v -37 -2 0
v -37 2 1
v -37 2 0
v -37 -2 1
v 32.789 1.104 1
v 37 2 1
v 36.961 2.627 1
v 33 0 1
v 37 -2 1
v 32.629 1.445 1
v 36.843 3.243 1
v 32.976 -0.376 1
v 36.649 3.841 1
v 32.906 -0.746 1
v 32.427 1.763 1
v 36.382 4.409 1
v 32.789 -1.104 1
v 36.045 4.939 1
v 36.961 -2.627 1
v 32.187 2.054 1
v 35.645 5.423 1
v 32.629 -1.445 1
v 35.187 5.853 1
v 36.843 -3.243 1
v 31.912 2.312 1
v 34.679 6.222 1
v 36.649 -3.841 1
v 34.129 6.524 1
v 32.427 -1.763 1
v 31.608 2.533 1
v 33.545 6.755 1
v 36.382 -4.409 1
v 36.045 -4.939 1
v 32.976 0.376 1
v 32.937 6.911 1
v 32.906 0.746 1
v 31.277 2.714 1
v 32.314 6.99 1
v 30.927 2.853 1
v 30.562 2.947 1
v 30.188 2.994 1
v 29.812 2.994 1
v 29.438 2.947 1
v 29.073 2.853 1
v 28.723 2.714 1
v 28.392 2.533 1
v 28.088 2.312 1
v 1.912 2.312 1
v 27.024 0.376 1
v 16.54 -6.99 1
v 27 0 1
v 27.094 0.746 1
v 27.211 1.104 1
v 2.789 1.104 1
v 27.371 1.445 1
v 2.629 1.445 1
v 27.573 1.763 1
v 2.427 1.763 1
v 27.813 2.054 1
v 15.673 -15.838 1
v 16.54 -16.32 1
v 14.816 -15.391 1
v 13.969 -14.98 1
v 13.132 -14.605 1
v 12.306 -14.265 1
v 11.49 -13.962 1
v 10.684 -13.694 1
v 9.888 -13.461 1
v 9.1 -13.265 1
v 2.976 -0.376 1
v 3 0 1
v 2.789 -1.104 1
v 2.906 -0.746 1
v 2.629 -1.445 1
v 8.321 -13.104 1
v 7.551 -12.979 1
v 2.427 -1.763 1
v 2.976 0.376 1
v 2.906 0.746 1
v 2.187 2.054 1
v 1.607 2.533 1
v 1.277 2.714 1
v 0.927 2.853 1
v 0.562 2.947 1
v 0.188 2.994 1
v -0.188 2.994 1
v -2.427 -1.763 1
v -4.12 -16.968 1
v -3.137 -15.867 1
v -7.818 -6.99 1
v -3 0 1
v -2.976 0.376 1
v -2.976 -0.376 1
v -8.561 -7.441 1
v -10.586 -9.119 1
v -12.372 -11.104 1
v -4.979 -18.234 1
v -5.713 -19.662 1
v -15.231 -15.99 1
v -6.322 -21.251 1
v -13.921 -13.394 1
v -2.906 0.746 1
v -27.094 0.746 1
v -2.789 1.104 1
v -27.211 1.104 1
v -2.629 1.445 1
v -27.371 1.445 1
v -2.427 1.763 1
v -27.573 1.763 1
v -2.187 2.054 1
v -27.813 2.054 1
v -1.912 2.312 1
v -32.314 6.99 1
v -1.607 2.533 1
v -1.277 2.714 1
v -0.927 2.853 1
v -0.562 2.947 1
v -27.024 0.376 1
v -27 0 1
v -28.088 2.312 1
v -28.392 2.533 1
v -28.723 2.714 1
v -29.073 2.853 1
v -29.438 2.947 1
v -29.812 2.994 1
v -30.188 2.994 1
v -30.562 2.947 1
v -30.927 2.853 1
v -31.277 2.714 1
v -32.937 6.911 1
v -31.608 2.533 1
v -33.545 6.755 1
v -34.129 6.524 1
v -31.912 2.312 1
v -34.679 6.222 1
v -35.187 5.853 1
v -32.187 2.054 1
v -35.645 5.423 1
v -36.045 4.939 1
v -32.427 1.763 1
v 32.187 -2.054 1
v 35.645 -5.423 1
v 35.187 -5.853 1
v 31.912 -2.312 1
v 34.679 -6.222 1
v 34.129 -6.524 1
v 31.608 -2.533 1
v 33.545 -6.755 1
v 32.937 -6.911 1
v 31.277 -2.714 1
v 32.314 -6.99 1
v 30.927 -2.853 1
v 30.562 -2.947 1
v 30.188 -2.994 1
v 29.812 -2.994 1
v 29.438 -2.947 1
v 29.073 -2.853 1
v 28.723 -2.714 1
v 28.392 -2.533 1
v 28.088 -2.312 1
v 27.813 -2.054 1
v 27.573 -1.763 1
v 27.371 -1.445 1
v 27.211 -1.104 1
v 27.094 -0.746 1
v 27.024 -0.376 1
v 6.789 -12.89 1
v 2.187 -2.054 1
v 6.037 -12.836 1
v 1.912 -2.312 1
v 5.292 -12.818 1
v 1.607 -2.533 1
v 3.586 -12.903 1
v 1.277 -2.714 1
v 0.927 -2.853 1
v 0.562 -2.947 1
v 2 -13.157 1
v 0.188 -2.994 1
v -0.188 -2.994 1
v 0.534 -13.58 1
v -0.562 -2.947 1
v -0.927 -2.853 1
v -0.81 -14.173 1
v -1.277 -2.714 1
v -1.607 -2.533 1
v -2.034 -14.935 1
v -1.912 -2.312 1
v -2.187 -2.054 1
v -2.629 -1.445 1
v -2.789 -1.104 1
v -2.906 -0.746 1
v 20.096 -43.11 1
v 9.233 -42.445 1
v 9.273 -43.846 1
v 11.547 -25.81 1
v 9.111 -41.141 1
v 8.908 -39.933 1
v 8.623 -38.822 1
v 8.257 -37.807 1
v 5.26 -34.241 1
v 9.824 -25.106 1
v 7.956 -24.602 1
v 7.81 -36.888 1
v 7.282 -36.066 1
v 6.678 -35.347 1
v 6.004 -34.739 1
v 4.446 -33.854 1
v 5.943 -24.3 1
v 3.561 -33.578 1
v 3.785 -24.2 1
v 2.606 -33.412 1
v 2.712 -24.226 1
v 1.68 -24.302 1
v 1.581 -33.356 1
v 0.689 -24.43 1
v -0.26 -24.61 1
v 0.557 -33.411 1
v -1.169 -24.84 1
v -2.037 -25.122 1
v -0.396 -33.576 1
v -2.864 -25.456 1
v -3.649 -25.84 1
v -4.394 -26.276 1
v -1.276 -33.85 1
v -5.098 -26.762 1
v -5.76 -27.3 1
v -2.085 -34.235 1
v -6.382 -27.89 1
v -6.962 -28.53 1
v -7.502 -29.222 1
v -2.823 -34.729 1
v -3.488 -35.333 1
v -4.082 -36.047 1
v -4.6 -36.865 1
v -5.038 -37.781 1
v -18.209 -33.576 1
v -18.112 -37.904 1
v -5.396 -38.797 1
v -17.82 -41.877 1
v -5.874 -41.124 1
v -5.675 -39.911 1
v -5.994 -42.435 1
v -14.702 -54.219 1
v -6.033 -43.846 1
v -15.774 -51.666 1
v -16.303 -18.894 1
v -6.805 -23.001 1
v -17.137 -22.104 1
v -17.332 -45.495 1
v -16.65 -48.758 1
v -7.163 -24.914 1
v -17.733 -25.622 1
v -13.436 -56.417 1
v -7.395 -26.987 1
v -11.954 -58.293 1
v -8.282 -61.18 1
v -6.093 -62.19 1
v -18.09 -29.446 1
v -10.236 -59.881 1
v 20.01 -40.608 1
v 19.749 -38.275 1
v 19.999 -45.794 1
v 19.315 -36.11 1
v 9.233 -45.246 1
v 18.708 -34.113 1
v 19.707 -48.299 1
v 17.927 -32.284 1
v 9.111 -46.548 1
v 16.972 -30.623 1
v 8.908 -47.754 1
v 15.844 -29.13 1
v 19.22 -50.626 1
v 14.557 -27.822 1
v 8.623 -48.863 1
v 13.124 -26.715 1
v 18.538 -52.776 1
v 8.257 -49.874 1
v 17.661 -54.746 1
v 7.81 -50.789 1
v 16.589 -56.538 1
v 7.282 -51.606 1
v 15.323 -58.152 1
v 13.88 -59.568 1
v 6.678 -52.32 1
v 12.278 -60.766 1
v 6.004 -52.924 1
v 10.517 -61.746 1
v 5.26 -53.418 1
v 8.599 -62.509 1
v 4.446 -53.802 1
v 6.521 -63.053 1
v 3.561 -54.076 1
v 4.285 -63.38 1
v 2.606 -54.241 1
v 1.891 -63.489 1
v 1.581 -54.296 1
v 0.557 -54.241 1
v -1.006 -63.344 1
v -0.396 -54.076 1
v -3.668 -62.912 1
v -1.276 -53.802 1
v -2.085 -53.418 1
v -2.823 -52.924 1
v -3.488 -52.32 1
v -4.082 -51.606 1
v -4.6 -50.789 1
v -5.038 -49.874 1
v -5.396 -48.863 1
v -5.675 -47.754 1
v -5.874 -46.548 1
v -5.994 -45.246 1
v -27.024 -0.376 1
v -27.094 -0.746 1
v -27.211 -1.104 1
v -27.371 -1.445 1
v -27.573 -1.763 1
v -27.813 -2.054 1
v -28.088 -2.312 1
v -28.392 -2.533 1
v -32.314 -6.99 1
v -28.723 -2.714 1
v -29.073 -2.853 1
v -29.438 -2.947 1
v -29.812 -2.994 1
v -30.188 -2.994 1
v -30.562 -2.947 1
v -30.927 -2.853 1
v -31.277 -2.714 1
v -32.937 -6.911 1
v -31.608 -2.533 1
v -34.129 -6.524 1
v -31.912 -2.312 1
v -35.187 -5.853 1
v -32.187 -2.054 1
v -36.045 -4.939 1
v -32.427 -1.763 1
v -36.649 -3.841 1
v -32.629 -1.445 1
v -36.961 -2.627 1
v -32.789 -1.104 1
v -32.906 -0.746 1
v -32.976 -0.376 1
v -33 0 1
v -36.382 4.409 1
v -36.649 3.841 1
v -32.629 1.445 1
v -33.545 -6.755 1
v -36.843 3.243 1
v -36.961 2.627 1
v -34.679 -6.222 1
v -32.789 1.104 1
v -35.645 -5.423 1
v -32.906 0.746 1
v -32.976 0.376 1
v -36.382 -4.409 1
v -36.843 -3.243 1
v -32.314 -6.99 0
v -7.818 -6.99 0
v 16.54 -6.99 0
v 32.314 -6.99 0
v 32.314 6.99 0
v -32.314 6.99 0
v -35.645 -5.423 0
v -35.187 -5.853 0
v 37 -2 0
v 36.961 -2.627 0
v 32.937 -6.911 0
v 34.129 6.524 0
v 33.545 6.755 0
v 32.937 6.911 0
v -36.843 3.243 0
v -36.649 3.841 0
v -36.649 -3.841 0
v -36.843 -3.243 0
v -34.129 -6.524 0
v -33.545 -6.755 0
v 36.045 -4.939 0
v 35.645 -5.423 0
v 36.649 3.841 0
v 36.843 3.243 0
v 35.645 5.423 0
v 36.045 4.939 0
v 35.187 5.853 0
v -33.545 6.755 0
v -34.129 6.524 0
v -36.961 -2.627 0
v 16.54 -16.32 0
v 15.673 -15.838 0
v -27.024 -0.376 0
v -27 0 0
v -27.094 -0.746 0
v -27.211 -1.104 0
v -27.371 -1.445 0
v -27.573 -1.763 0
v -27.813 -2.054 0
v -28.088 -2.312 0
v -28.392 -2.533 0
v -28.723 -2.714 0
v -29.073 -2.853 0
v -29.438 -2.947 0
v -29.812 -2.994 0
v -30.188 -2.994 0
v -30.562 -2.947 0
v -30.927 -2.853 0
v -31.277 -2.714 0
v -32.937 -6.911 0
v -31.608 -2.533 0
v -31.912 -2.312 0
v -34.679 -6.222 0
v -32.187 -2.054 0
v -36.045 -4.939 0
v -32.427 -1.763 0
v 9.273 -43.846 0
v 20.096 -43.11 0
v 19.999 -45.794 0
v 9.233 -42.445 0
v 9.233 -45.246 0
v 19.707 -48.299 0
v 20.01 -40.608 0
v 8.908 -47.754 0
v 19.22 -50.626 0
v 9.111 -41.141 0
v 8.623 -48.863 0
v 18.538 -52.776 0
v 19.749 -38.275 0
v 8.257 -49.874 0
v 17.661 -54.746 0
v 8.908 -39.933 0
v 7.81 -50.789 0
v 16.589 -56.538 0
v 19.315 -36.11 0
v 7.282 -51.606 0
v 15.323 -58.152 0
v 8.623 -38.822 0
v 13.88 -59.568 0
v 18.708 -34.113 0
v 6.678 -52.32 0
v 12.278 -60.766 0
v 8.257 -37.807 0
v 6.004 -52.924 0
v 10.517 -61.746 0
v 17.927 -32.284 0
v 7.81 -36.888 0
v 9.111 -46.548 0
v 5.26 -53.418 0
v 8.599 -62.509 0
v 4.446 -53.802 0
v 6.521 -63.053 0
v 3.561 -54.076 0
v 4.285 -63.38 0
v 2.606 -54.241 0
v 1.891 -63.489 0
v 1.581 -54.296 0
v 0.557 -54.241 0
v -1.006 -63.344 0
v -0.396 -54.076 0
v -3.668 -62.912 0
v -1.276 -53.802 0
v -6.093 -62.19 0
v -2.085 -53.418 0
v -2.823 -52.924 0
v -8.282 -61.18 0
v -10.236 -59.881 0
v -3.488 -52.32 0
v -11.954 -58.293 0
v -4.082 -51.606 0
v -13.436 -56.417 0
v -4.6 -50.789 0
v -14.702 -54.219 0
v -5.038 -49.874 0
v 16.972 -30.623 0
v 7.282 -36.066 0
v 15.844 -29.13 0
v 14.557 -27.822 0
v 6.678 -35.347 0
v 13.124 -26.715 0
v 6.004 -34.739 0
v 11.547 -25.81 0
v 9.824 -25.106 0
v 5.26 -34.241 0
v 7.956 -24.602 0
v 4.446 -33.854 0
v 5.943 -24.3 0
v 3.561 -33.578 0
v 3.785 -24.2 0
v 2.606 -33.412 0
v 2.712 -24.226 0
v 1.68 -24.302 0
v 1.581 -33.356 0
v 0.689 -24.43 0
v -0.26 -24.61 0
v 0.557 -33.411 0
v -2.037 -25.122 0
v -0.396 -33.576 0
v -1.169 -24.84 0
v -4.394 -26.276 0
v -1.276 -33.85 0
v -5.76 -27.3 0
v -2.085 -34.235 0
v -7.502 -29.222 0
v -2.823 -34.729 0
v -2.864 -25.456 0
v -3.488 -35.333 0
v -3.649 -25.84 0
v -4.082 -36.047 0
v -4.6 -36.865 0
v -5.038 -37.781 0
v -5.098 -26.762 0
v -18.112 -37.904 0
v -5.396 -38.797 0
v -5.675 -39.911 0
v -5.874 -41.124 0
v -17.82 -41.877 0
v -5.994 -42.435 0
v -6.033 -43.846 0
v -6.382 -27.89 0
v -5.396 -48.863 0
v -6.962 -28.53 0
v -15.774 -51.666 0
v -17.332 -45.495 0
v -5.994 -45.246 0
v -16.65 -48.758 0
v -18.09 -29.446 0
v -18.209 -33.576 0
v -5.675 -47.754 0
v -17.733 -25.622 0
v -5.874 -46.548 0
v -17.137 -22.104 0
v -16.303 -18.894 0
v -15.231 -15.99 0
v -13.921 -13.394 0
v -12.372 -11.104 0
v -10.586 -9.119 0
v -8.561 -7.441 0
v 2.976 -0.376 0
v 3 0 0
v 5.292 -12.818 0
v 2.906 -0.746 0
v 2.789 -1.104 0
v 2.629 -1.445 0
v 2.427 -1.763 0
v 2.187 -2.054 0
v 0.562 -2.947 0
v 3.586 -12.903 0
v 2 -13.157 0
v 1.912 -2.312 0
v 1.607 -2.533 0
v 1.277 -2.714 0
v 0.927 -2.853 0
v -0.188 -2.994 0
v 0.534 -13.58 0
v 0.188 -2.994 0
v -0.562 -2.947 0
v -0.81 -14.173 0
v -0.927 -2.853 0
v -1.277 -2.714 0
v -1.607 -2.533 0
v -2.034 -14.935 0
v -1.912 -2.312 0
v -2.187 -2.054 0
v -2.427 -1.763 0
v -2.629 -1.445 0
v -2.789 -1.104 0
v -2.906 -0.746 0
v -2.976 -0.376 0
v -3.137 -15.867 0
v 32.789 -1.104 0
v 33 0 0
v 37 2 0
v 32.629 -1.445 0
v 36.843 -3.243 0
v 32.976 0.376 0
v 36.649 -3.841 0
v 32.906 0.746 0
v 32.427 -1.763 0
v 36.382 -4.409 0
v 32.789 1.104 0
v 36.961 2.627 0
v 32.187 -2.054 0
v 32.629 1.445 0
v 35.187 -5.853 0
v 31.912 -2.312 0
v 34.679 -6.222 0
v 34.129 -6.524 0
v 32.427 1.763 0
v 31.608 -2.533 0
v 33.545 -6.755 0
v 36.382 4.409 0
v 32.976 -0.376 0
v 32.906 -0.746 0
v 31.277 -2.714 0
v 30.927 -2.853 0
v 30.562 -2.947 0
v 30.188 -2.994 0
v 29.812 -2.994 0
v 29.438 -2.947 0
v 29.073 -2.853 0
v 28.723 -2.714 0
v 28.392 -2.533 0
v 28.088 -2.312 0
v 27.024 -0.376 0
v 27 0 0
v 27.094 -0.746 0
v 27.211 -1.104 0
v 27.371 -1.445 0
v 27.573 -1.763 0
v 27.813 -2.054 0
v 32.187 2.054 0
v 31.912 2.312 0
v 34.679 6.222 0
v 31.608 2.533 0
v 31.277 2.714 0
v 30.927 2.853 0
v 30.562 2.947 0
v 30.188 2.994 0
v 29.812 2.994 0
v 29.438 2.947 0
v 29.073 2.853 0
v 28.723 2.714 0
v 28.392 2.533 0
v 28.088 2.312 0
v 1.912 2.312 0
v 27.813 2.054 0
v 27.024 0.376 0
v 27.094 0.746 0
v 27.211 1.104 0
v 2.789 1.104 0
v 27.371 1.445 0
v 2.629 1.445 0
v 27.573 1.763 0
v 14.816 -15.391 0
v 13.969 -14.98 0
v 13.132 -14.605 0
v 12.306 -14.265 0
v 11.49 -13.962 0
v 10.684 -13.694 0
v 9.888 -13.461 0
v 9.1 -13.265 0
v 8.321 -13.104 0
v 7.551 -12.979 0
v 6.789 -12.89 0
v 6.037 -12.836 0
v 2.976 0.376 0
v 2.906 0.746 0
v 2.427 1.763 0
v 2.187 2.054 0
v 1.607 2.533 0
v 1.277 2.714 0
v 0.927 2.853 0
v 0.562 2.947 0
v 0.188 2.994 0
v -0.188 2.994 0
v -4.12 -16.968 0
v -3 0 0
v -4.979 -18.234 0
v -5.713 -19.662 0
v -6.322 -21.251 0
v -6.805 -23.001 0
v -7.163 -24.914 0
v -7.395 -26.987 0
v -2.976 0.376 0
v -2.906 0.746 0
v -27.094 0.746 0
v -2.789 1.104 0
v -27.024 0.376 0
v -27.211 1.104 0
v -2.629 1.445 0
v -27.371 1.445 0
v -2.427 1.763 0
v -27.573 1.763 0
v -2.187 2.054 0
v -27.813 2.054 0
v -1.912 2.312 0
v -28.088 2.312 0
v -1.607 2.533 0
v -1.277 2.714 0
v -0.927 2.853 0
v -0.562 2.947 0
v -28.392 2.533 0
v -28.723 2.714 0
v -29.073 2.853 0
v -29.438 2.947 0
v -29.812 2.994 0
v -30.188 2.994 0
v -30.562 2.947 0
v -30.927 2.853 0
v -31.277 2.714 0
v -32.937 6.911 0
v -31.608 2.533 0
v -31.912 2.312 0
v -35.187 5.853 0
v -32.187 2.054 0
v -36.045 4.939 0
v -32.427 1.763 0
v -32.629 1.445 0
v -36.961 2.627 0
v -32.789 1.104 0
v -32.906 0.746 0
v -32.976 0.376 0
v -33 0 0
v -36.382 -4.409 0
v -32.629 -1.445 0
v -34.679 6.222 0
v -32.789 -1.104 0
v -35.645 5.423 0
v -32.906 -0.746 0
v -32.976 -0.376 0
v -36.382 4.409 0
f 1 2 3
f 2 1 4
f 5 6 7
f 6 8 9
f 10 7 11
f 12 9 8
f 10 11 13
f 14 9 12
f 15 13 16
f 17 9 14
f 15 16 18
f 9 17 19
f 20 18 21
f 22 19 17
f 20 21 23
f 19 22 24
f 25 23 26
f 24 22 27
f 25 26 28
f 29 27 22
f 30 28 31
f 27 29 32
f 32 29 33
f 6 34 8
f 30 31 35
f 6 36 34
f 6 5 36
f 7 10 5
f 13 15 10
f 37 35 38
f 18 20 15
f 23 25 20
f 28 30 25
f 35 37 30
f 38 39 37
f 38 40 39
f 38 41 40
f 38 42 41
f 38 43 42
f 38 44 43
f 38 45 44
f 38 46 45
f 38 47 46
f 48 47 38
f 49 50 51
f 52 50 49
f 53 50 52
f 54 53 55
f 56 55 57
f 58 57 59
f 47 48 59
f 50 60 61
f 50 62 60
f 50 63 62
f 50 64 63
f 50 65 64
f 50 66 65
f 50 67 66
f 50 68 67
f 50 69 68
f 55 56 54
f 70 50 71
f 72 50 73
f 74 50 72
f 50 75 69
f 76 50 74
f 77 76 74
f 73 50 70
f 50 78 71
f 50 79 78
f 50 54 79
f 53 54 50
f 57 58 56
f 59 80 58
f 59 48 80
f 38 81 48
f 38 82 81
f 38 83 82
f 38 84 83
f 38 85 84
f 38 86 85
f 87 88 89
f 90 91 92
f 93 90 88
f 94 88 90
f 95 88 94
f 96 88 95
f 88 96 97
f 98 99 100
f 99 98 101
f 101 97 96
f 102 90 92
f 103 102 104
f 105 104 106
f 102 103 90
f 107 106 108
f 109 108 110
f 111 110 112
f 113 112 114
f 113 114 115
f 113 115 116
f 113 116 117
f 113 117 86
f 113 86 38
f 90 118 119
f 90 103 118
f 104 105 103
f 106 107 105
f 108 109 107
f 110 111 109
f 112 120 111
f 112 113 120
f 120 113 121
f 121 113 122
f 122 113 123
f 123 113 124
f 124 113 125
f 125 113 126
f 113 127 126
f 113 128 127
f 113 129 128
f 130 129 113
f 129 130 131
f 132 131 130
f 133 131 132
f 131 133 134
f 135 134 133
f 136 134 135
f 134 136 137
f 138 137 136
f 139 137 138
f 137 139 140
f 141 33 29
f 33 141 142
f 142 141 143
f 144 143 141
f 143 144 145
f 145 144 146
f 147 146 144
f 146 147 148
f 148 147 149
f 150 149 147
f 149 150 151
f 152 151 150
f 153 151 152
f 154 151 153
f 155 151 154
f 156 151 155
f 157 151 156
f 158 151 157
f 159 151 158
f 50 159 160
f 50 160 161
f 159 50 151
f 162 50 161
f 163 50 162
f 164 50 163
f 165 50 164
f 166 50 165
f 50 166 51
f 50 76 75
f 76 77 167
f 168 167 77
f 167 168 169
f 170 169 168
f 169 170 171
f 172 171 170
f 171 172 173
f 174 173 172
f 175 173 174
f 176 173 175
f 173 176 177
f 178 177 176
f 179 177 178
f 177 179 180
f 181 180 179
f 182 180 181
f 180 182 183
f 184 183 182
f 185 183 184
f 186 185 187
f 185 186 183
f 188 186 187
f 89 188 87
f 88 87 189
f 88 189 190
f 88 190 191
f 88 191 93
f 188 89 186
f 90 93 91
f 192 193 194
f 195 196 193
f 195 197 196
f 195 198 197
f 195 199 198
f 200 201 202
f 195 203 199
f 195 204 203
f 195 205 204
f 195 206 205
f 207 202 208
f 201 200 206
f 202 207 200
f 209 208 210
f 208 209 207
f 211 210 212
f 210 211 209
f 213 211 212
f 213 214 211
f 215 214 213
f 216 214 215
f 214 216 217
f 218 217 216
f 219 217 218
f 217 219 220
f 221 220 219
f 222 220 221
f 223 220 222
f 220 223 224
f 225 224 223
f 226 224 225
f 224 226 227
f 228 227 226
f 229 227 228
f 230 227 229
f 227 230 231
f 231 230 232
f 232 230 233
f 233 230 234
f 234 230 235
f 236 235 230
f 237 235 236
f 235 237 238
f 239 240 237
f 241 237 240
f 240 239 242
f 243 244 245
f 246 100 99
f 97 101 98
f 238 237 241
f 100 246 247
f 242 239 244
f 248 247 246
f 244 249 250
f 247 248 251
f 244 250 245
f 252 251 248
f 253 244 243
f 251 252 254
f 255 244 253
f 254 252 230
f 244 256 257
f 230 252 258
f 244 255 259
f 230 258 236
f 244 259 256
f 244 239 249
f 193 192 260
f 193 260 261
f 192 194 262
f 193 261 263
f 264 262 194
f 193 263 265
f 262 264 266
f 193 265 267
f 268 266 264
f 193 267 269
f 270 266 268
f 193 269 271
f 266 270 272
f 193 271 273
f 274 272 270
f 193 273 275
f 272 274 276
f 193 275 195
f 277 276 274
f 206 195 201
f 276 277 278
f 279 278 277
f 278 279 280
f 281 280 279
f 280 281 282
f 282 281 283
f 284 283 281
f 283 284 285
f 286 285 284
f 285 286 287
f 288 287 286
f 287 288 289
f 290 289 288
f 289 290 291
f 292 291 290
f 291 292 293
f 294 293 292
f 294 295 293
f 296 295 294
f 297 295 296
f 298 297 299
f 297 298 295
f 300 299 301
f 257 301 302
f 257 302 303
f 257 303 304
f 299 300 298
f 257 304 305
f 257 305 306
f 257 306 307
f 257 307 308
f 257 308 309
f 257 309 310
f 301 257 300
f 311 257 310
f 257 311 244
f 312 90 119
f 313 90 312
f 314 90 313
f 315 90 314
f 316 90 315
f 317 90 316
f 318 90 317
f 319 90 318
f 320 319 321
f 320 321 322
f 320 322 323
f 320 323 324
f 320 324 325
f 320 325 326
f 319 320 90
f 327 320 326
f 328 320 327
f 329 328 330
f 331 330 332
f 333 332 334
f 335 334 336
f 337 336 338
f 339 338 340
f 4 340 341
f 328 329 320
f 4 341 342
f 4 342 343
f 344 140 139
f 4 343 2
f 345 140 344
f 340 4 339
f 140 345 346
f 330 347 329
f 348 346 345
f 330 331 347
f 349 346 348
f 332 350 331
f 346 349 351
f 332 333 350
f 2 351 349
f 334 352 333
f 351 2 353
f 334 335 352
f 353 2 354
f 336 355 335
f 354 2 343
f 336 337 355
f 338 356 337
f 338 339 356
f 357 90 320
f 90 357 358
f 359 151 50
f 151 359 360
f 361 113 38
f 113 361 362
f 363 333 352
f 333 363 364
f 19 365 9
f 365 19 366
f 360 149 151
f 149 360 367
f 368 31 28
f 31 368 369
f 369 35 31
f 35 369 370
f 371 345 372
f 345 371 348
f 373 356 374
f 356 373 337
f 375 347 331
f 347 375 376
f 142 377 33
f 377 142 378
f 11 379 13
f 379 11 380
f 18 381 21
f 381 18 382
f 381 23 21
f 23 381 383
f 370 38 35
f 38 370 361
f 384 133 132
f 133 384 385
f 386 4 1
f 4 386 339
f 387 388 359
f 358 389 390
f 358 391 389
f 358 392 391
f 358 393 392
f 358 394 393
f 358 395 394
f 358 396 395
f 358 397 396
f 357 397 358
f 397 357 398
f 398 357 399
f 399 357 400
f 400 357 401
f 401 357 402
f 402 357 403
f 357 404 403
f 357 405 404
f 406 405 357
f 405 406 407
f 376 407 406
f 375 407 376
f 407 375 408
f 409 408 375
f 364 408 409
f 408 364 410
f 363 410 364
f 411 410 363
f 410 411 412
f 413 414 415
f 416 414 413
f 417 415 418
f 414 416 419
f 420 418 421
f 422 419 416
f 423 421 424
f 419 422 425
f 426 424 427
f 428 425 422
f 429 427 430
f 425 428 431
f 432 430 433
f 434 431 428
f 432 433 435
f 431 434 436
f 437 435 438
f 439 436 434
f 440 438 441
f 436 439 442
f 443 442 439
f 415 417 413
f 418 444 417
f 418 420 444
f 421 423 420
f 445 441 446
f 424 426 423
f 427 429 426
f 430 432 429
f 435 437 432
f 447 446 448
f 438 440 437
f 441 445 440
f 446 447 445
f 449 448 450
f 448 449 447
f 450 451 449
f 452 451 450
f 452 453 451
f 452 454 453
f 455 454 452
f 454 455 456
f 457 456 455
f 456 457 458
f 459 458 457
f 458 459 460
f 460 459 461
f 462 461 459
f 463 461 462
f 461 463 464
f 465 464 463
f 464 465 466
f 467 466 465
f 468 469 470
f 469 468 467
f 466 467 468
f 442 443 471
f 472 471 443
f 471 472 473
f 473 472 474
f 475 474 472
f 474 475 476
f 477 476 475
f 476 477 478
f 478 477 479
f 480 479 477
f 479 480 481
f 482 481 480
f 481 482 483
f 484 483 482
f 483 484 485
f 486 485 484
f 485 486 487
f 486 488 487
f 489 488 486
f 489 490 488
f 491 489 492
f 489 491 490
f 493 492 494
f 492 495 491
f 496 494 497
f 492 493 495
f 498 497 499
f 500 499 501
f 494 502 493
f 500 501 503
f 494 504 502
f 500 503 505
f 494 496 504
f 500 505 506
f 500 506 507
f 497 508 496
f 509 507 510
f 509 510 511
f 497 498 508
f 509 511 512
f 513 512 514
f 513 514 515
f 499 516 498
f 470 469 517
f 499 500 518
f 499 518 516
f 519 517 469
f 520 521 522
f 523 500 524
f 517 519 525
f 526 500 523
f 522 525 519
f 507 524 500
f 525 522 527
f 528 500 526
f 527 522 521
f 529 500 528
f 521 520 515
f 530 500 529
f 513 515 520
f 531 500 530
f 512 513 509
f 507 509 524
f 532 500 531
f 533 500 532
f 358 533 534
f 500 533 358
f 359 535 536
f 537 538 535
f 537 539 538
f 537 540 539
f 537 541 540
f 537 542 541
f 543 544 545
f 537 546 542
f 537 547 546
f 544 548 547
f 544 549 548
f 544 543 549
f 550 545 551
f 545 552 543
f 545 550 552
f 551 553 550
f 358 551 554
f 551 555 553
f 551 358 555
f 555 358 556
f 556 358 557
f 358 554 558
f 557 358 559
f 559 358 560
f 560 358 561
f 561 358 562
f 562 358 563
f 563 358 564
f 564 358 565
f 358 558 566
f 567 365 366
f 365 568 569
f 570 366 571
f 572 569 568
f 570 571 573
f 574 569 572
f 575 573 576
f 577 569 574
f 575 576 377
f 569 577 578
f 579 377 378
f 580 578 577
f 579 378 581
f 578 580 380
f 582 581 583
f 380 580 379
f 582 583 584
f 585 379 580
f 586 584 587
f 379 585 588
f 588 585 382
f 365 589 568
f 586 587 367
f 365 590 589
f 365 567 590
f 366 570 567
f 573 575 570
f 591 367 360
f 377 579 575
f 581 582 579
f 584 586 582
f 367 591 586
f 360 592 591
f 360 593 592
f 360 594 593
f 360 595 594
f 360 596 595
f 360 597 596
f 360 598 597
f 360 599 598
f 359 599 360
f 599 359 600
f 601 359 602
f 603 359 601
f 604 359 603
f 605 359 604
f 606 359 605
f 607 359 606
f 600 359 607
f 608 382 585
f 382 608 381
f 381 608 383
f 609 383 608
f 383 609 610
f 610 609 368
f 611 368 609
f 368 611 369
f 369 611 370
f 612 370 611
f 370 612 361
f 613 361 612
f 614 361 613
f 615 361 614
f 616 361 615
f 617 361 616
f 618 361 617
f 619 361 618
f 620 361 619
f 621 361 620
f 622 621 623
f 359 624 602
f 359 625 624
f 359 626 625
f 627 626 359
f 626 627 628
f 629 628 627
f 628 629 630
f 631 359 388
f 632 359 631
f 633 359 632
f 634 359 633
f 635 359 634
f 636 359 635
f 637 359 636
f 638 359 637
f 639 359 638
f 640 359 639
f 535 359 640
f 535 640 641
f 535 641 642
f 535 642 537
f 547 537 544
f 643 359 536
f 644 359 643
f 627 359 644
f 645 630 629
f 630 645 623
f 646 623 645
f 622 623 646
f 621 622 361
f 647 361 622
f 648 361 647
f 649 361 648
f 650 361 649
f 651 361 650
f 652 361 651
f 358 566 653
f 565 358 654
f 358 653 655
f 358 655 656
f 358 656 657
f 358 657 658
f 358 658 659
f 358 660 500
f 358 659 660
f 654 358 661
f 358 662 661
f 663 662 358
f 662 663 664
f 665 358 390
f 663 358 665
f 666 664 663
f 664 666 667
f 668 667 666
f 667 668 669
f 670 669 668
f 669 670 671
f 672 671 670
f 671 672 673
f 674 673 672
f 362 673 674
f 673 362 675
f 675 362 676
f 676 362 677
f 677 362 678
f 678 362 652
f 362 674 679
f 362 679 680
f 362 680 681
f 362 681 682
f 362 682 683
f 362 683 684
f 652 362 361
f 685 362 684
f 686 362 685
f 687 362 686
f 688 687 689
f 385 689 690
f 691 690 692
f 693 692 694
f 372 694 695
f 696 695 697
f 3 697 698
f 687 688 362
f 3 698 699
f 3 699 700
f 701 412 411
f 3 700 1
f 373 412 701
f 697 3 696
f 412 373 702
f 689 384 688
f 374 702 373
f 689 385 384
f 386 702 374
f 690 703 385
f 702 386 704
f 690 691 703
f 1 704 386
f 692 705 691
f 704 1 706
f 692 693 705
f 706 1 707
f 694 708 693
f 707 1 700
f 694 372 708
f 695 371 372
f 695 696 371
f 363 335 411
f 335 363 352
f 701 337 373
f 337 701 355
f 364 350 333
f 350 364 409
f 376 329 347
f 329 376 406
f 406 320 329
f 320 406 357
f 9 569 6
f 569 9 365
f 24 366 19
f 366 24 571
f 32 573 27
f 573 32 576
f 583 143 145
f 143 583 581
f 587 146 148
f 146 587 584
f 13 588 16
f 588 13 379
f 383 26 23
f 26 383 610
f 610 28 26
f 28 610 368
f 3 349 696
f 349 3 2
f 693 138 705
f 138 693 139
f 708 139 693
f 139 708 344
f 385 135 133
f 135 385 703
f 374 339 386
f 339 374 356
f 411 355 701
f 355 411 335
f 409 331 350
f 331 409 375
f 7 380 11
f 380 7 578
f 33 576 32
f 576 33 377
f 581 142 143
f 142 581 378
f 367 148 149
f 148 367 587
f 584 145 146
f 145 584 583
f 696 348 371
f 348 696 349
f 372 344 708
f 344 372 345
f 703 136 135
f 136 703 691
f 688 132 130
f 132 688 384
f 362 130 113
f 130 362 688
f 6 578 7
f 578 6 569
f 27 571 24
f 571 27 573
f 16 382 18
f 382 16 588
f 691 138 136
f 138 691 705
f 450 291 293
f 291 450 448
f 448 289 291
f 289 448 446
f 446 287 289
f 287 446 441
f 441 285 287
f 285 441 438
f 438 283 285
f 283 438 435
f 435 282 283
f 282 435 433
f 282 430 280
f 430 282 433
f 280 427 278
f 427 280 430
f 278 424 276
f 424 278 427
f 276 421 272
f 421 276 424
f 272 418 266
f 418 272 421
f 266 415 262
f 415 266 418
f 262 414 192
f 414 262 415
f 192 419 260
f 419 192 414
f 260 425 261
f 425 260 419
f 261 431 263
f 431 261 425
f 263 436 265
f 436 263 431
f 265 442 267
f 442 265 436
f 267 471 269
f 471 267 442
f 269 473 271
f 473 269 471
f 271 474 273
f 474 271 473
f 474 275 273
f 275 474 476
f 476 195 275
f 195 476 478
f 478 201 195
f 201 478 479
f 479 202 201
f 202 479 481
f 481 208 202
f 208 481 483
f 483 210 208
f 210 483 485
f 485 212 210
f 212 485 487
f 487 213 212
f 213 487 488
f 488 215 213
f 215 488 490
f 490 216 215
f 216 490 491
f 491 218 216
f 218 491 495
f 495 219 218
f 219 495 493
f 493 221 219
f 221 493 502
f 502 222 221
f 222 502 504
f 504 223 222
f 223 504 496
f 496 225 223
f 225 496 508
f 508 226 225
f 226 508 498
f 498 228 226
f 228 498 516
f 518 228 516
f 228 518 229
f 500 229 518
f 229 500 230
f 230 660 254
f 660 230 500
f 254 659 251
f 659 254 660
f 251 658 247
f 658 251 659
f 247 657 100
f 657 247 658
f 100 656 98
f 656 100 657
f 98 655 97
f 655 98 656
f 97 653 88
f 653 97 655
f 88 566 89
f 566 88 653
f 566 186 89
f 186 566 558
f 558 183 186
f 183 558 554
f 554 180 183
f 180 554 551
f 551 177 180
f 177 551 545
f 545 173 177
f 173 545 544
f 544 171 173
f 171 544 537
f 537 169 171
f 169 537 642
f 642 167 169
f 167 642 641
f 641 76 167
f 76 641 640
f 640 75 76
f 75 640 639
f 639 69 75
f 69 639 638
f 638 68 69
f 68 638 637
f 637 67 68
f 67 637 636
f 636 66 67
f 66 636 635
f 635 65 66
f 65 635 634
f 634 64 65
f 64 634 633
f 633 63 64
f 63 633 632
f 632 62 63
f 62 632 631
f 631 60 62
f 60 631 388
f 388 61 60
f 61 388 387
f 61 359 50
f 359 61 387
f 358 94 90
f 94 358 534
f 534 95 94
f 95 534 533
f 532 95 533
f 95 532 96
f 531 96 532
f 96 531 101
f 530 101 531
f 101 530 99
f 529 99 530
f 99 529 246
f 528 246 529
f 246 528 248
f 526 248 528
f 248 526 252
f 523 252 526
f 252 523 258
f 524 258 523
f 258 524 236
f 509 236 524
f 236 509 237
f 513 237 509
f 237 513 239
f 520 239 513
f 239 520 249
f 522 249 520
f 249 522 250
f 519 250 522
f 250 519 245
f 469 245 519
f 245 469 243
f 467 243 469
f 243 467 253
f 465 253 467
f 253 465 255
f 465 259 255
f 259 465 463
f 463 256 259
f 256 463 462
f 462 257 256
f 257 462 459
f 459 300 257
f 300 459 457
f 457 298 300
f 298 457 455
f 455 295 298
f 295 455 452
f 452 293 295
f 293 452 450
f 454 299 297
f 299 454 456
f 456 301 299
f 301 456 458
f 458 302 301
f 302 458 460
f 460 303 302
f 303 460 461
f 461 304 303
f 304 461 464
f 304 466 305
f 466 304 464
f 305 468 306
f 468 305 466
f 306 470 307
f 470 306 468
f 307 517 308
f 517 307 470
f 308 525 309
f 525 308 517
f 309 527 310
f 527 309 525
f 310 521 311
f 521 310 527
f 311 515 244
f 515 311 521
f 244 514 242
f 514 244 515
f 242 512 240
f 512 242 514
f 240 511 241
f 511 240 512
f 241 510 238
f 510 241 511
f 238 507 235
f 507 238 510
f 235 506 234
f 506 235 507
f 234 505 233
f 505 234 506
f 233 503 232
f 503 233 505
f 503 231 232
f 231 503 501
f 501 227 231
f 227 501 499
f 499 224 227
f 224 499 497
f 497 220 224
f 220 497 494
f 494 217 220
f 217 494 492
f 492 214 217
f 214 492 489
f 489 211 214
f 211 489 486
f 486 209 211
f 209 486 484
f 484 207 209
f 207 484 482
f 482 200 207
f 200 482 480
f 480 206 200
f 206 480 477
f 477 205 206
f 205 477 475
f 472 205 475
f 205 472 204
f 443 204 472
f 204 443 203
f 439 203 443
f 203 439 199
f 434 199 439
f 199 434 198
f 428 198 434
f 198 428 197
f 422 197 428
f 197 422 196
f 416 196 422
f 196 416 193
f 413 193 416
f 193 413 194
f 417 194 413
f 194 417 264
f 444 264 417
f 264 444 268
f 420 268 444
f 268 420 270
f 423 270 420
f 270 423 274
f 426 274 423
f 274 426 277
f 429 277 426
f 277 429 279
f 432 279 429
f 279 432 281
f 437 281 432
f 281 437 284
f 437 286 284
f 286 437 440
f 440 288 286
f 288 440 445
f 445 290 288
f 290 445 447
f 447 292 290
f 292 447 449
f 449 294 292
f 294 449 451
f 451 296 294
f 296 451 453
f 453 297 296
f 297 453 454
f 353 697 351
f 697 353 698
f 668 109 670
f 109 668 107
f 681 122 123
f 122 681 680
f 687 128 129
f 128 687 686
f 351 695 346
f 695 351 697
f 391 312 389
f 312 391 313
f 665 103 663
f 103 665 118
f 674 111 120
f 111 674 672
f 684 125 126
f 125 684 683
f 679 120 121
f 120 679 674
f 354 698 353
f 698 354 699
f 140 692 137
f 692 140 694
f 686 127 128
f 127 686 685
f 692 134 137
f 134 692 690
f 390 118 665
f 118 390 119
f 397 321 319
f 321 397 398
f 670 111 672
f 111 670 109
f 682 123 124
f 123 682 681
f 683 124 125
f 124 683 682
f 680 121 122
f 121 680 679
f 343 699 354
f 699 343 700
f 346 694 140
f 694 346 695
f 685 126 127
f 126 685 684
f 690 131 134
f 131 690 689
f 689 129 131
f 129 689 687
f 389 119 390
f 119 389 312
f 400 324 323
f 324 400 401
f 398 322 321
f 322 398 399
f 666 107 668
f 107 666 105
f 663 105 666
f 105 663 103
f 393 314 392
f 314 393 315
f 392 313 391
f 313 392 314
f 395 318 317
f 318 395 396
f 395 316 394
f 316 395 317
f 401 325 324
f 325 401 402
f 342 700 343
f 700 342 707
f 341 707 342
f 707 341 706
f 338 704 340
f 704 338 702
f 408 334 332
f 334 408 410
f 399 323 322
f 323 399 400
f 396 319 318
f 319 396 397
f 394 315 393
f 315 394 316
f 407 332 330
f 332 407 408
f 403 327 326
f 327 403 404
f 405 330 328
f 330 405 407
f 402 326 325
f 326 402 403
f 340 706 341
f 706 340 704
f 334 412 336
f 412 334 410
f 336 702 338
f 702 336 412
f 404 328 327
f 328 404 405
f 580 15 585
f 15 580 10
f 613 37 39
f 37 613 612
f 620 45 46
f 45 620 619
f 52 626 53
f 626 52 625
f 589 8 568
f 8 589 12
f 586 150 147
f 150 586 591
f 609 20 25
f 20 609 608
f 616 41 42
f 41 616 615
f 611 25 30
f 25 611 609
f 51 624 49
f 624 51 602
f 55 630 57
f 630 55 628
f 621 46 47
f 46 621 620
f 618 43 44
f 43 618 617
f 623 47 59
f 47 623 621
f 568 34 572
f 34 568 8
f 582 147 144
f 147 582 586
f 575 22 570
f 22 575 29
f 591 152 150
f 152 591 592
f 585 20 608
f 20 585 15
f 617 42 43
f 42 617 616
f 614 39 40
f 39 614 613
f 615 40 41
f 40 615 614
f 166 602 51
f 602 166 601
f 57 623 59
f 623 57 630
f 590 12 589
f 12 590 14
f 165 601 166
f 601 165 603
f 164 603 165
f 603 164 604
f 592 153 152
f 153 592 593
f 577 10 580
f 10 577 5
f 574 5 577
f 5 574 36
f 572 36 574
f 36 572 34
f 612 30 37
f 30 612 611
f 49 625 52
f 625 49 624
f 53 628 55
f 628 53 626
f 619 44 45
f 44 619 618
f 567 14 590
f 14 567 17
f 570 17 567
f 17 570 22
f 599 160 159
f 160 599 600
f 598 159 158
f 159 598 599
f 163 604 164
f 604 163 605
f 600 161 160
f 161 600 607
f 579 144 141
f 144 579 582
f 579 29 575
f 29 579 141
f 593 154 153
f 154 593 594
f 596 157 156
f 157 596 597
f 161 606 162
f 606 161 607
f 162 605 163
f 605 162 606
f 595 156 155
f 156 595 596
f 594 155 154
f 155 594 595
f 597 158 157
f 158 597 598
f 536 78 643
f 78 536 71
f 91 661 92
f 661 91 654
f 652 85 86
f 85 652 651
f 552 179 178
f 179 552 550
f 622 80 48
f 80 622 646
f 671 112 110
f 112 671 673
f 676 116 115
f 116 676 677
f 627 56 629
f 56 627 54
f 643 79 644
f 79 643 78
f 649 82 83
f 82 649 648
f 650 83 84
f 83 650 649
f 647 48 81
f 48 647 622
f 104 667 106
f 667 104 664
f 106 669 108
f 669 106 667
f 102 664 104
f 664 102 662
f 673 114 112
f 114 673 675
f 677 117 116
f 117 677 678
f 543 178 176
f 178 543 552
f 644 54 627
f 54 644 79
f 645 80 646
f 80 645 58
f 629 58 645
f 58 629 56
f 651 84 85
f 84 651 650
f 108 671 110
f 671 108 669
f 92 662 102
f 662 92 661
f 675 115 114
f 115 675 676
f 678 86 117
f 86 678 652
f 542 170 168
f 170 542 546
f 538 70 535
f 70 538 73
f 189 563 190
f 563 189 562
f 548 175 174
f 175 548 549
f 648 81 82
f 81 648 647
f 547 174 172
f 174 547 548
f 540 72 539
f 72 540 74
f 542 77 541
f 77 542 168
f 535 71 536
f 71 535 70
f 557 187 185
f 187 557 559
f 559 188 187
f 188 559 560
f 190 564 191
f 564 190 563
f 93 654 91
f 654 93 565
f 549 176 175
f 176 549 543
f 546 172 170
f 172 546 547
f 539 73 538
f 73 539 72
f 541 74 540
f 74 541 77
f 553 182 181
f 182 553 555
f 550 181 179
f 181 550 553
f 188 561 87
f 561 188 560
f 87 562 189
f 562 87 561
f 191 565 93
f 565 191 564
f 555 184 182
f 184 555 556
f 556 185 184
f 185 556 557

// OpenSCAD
$fn = 50;


difference() {
	union() {
		translate(v = [0, 0, 0]) {
			rotate(a = [0, 0, 0]) {
				hull() {
					translate(v = [-32.0000000000, 2.0000000000, 0]) {
						rotate(a = [0, 0, 0]) {
							translate(v = [0, 0, 0]) {
								rotate(a = [0, 0, 0]) {
									cylinder(h = 1, r = 5);
								}
							}
						}
					}
					translate(v = [32.0000000000, 2.0000000000, 0]) {
						rotate(a = [0, 0, 0]) {
							translate(v = [0, 0, 0]) {
								rotate(a = [0, 0, 0]) {
									cylinder(h = 1, r = 5);
								}
							}
						}
					}
					translate(v = [-32.0000000000, -2.0000000000, 0]) {
						rotate(a = [0, 0, 0]) {
							translate(v = [0, 0, 0]) {
								rotate(a = [0, 0, 0]) {
									cylinder(h = 1, r = 5);
								}
							}
						}
					}
					translate(v = [32.0000000000, -2.0000000000, 0]) {
						rotate(a = [0, 0, 0]) {
							translate(v = [0, 0, 0]) {
								rotate(a = [0, 0, 0]) {
									cylinder(h = 1, r = 5);
								}
							}
						}
					}
				}
			}
		}
		translate(v = [0, -5, 0]) {
			rotate(a = [0, 0, 0]) {
				linear_extrude(height = 1) {
					text(font = "DejaVu Sans Mono:style=Bold", halign = "center", size = 57.0000000000, text = "6", valign = "top");
				}
			}
		}
	}
	union() {
		translate(v = [-30.0000000000, 0.0000000000, -125.0000000000]) {
			rotate(a = [0, 0, 0]) {
				cylinder(h = 250, r = 3.0000000000);
			}
		}
		translate(v = [30.0000000000, 0.0000000000, -125.0000000000]) {
			rotate(a = [0, 0, 0]) {
				cylinder(h = 250, r = 3.0000000000);
			}
		}
		translate(v = [30.0000000000, 0.0000000000, -125.0000000000]) {
			rotate(a = [0, 0, 0]) {
				cylinder(h = 250, r = 3.0000000000);
			}
		}
		translate(v = [0, 0, -125.0000000000]) {
			rotate(a = [0, 0, 0]) {
				cylinder(h = 250, r = 3.0000000000);
			}
		}
	}
}
